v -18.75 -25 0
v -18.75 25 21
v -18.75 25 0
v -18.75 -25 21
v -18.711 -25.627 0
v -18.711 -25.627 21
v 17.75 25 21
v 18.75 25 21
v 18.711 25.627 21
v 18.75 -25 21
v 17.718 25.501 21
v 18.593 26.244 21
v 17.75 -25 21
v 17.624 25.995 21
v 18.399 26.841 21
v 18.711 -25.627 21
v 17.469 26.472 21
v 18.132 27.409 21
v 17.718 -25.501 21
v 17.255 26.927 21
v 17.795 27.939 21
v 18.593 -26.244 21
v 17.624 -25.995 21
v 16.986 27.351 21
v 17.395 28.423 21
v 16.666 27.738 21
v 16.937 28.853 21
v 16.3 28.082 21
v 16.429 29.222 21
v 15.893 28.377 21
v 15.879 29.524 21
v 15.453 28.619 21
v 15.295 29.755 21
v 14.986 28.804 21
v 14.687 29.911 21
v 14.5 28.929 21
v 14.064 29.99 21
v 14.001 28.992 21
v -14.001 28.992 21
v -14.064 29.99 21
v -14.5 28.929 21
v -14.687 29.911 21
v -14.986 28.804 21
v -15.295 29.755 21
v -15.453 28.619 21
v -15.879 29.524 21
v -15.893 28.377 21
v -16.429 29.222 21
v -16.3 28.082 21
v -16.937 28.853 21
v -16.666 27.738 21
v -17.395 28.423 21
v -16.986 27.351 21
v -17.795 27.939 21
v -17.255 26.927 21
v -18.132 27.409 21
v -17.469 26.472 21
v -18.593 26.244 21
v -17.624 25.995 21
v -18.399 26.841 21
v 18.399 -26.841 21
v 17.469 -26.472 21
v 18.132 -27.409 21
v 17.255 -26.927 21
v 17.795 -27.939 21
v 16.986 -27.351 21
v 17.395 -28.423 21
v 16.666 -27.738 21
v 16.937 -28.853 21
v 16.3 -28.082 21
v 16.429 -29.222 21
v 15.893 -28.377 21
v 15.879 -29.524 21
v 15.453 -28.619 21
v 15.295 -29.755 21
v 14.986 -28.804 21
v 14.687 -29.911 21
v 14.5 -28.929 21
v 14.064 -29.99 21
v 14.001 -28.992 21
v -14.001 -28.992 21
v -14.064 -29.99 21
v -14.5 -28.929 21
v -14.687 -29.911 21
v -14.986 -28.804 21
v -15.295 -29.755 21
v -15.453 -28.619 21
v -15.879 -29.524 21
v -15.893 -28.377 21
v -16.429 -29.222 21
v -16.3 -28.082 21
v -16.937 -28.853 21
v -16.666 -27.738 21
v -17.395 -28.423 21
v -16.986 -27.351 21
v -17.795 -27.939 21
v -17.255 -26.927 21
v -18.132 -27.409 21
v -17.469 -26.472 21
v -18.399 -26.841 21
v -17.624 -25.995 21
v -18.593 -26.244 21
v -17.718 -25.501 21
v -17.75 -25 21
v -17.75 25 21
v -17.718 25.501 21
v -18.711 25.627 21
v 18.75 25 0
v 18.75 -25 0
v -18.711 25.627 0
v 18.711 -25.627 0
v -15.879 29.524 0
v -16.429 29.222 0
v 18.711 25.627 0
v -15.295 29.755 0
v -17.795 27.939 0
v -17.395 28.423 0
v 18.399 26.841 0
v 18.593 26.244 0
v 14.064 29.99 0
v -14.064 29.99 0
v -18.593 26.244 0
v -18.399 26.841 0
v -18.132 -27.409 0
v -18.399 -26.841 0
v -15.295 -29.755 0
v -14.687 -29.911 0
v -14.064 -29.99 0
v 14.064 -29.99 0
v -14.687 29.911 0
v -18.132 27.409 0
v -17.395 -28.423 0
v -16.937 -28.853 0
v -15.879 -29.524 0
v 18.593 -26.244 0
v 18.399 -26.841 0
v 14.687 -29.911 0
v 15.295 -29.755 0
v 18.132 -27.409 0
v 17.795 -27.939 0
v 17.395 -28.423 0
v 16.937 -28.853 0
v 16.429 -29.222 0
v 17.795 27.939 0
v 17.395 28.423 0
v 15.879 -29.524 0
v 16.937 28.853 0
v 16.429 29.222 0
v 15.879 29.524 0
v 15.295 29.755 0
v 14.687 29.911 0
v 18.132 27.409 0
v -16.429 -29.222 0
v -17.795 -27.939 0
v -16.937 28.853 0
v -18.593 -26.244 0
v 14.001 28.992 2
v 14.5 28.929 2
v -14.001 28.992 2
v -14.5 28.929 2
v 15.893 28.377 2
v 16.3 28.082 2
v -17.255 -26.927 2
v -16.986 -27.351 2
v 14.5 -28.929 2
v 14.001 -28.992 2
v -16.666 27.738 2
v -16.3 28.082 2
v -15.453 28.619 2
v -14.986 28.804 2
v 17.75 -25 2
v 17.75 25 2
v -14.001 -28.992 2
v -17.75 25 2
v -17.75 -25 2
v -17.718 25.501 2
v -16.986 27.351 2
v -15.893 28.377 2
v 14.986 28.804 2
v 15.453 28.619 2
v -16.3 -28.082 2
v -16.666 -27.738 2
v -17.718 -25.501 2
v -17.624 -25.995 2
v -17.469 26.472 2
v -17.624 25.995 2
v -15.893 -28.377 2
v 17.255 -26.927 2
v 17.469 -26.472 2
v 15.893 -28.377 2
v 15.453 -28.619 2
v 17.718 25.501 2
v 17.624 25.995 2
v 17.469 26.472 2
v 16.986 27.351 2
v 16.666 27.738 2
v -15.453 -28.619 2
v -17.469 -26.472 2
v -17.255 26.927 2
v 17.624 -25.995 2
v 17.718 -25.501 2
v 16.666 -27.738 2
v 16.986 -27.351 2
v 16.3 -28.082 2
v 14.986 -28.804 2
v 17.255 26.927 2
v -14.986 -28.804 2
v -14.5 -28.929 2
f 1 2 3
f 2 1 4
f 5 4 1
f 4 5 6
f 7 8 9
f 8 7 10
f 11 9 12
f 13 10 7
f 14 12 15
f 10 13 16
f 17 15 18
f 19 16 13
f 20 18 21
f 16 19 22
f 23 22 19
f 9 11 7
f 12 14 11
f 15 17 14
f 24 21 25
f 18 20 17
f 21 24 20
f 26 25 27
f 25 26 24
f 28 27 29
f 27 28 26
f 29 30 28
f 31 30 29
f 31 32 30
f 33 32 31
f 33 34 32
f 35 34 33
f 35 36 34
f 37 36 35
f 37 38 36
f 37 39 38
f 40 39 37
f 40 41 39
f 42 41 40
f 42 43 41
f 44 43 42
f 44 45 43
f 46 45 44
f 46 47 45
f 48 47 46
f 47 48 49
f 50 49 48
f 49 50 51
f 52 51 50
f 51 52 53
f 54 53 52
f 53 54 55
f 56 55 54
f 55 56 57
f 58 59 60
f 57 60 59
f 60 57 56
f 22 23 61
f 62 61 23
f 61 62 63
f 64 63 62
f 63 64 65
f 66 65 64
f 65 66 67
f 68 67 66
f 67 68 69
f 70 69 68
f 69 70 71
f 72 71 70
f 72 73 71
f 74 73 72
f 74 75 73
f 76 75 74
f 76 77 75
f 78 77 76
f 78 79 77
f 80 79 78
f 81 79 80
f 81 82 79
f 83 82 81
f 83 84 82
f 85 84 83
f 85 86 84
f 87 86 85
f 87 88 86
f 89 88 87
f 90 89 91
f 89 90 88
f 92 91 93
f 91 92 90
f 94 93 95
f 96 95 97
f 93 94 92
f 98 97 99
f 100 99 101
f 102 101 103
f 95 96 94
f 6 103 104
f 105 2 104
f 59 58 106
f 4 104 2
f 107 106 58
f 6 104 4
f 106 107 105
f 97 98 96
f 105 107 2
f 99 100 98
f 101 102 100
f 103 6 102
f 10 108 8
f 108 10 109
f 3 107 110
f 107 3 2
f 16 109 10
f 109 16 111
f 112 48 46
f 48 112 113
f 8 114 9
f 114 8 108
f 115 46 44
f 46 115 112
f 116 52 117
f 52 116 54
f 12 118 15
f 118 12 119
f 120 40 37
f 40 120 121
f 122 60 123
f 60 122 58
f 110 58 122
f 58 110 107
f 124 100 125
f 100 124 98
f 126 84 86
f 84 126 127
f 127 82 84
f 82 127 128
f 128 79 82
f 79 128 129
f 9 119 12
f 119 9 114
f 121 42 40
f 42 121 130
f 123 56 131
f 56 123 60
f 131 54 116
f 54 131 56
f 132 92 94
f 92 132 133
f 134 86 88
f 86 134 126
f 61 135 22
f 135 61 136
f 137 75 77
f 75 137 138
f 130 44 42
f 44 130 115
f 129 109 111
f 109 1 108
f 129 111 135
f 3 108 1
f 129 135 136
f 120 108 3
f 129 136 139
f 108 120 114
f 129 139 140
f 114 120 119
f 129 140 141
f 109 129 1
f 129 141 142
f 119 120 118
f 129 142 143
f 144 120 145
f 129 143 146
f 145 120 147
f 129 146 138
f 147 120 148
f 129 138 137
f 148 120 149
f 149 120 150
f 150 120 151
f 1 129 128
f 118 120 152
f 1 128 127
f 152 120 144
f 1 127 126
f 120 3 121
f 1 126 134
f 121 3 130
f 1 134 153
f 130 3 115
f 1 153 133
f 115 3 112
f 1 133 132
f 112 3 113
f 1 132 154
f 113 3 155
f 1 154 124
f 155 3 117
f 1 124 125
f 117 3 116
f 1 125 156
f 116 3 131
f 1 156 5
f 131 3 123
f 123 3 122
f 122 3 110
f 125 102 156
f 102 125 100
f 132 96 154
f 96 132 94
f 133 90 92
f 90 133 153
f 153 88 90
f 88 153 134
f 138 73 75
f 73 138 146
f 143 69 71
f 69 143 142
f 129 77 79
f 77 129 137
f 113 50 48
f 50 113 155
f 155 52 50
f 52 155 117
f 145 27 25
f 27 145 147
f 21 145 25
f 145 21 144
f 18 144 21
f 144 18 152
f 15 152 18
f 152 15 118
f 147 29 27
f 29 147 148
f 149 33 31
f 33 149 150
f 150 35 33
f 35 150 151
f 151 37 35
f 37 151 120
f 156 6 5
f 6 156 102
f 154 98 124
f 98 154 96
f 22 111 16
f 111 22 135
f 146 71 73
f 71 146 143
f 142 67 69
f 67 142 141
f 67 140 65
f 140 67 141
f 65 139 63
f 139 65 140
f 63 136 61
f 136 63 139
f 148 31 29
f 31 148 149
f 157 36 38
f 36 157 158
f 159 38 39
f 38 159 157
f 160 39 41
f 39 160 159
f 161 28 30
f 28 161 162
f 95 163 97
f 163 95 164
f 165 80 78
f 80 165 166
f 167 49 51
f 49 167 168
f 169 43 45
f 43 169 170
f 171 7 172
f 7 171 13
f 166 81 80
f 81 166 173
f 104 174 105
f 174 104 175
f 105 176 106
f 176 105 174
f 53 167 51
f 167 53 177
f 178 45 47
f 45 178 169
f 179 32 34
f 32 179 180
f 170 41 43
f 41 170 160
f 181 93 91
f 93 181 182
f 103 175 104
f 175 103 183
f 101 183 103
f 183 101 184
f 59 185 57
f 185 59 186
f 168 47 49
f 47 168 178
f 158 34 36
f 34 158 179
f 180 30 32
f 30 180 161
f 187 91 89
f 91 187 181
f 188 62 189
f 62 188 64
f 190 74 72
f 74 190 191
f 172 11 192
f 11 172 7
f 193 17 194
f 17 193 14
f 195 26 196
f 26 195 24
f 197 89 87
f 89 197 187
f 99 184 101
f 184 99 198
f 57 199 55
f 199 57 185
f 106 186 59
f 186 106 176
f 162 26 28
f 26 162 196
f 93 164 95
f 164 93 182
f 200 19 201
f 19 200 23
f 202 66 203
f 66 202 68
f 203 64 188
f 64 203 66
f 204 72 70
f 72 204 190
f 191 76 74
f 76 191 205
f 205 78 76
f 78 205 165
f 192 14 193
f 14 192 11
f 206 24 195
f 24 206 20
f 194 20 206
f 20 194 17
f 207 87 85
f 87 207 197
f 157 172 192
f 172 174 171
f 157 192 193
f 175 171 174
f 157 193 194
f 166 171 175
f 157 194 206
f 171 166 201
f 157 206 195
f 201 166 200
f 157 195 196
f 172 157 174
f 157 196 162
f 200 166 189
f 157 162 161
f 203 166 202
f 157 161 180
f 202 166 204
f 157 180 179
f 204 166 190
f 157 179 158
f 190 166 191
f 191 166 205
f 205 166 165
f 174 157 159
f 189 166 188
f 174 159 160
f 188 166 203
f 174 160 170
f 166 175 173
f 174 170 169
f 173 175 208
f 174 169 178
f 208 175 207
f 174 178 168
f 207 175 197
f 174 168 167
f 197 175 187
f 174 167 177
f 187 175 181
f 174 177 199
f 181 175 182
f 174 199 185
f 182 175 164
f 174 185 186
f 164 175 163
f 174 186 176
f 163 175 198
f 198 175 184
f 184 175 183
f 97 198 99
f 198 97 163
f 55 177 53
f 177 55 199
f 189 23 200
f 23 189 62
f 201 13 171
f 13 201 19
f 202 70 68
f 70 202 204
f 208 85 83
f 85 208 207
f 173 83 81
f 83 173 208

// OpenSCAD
$fn = 50;


difference() {
	union() {
		hull() {
			translate(v = [-13.7500000000, 25.0000000000, 0]) {
				cylinder(h = 21, r = 5);
			}
			translate(v = [13.7500000000, 25.0000000000, 0]) {
				cylinder(h = 21, r = 5);
			}
			translate(v = [-13.7500000000, -25.0000000000, 0]) {
				cylinder(h = 21, r = 5);
			}
			translate(v = [13.7500000000, -25.0000000000, 0]) {
				cylinder(h = 21, r = 5);
			}
		}
	}
	union() {
		translate(v = [0, 0, 2]) {
			hull() {
				translate(v = [-13.7500000000, 25.0000000000, 0]) {
					cylinder(h = 19, r = 4);
				}
				translate(v = [13.7500000000, 25.0000000000, 0]) {
					cylinder(h = 19, r = 4);
				}
				translate(v = [-13.7500000000, -25.0000000000, 0]) {
					cylinder(h = 19, r = 4);
				}
				translate(v = [13.7500000000, -25.0000000000, 0]) {
					cylinder(h = 19, r = 4);
				}
			}
		}
	}
}
